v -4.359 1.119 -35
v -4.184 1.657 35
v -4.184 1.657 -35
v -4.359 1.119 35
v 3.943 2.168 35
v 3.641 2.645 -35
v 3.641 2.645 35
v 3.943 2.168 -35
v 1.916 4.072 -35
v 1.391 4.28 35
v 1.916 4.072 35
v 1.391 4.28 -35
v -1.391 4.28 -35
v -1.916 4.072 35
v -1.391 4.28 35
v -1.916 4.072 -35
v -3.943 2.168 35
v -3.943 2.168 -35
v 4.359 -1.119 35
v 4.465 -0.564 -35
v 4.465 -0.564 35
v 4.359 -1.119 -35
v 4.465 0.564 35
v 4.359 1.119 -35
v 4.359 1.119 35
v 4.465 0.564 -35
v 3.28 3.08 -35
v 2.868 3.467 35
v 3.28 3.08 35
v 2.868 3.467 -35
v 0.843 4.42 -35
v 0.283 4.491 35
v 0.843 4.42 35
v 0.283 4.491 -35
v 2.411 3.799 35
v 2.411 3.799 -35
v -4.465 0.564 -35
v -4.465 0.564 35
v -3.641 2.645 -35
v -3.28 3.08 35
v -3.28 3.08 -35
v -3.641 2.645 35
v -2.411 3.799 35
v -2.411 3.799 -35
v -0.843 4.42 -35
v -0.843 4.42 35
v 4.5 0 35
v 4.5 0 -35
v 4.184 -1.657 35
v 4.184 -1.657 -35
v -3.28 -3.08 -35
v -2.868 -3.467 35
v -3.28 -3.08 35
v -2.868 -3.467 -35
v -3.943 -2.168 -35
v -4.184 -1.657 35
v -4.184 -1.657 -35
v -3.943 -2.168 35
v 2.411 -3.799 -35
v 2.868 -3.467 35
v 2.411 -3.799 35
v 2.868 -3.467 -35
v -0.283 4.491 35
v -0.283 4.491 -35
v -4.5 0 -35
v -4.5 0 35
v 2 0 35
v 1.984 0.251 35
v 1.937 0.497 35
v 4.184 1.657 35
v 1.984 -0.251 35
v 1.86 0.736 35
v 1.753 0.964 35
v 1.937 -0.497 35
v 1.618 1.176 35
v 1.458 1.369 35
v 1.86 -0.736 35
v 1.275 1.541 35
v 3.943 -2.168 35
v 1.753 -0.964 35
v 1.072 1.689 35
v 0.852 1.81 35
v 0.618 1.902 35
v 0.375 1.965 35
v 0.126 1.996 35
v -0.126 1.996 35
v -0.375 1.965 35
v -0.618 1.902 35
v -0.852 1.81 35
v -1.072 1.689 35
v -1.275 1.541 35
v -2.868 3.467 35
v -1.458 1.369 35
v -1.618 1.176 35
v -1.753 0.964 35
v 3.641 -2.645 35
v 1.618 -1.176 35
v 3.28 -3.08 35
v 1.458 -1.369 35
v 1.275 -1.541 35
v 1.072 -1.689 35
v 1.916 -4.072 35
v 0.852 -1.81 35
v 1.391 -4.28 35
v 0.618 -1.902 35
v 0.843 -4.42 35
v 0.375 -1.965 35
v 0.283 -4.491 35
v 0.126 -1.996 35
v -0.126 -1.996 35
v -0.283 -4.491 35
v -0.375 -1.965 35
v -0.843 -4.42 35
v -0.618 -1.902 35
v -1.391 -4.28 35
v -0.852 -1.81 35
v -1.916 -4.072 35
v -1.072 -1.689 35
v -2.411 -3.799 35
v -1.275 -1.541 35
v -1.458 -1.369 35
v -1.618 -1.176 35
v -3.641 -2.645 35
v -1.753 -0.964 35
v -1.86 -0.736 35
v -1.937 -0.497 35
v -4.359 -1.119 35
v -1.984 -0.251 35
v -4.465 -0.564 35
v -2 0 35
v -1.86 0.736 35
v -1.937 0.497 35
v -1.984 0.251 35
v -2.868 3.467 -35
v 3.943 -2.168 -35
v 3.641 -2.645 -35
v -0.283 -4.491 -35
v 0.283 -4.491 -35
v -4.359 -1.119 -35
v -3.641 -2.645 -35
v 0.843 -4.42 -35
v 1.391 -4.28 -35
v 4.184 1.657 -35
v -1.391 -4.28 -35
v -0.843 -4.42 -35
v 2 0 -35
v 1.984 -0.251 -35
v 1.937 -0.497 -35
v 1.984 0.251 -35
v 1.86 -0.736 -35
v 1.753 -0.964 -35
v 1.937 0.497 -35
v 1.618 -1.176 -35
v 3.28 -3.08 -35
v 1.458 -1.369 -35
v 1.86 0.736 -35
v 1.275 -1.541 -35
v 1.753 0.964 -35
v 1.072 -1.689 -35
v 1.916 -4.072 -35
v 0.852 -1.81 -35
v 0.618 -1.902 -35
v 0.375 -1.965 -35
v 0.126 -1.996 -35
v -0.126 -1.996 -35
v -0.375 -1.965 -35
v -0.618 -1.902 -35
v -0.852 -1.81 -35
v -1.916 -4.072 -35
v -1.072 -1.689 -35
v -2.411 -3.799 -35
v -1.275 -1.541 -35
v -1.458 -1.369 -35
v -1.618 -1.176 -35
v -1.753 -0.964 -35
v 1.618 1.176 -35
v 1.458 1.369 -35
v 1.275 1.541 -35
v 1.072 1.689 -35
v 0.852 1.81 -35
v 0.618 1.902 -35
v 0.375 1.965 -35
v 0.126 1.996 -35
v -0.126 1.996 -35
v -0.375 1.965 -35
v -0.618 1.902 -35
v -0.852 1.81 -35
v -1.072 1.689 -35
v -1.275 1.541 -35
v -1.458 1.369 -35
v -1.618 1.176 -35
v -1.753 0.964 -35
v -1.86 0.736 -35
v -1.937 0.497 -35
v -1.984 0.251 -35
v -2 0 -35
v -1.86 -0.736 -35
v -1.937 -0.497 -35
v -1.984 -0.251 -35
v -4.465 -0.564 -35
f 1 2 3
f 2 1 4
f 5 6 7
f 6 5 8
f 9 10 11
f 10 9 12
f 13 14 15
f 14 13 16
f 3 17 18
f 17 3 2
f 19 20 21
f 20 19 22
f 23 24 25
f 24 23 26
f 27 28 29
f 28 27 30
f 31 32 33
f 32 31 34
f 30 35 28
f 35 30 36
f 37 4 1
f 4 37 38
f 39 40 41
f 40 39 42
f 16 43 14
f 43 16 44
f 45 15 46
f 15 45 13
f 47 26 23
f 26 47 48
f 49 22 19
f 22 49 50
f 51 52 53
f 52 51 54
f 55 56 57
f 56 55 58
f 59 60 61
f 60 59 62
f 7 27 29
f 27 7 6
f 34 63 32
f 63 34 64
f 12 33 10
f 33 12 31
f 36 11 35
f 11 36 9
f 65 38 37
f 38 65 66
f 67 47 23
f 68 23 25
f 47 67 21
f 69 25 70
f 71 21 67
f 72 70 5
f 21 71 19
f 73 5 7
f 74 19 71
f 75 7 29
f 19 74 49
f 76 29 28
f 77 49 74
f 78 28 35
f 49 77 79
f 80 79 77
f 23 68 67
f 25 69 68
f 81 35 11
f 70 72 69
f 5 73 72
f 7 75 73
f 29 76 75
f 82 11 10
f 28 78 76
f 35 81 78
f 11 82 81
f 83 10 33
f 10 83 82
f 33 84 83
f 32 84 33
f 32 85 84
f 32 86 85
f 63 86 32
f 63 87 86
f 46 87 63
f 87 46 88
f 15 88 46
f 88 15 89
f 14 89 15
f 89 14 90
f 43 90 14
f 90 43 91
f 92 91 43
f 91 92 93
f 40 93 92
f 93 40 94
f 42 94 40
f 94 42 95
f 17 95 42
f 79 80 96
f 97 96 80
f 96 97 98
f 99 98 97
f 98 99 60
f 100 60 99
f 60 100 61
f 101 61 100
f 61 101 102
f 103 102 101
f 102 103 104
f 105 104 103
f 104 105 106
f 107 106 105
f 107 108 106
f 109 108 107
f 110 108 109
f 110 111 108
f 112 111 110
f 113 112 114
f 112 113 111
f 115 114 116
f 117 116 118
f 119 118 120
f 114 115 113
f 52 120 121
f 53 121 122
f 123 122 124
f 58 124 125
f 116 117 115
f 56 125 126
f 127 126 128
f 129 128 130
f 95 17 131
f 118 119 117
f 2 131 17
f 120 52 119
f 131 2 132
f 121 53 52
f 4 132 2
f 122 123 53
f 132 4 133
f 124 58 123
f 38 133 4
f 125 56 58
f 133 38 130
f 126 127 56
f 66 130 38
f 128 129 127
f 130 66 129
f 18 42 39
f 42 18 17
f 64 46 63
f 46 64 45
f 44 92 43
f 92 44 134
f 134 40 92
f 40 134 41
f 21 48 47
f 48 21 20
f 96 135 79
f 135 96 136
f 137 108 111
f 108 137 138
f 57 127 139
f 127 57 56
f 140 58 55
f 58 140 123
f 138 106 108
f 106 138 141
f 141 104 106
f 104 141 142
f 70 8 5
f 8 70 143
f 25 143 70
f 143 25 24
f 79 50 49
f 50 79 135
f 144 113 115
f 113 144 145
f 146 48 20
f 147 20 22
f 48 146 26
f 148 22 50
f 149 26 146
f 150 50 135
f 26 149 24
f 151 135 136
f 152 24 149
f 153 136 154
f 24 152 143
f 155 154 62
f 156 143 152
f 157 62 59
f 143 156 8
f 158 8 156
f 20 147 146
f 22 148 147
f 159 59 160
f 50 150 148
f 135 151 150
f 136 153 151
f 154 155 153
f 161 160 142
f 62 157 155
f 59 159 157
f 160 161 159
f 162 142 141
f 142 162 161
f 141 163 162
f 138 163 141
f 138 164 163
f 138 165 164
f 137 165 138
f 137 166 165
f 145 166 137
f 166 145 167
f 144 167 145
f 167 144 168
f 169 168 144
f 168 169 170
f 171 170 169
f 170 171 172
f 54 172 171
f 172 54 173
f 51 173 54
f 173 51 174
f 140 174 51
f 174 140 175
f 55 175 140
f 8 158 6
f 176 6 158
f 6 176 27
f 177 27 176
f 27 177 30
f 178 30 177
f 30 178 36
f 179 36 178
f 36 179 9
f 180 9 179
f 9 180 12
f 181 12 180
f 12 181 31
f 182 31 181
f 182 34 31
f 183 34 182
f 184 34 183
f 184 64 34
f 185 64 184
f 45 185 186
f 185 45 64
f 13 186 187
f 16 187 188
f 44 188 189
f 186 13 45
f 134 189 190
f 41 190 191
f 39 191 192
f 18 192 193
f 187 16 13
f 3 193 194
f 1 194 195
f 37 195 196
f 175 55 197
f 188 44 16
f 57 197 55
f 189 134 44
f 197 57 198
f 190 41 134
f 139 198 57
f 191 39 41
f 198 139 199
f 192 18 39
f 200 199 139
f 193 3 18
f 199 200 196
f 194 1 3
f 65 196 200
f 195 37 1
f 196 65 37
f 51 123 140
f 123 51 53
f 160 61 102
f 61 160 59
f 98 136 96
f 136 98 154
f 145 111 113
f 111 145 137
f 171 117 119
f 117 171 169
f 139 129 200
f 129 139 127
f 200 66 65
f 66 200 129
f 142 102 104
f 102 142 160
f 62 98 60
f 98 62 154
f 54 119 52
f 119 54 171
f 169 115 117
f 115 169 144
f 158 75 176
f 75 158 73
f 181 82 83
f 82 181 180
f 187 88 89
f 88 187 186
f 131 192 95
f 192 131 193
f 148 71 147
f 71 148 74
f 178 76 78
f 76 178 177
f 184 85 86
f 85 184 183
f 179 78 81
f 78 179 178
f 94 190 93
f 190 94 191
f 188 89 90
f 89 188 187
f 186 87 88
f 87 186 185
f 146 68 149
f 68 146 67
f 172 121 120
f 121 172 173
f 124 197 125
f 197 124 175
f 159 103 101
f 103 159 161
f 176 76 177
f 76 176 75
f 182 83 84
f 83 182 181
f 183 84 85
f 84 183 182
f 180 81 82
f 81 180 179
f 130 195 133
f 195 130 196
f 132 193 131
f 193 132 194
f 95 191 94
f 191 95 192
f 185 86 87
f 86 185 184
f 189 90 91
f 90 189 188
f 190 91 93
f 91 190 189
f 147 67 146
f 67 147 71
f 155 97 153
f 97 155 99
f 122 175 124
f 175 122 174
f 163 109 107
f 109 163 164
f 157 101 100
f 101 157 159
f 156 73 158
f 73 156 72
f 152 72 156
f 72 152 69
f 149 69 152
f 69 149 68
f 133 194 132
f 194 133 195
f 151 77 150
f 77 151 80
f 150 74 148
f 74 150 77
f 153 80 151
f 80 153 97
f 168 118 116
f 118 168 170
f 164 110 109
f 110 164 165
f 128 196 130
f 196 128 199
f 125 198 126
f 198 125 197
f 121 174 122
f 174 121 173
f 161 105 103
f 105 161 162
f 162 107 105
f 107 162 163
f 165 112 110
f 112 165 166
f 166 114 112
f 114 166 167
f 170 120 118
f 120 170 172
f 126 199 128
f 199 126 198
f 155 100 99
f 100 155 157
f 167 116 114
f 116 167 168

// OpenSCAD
$fn = 50;


difference() {
	union() {
		translate(v = [0, 0, -35.0000000000]) {
			cylinder(h = 70, r = 4.5000000000);
		}
	}
	union() {
		translate(v = [0, 0, -100.0000000000]) {
			cylinder(h = 200, r = 2);
		}
	}
}
